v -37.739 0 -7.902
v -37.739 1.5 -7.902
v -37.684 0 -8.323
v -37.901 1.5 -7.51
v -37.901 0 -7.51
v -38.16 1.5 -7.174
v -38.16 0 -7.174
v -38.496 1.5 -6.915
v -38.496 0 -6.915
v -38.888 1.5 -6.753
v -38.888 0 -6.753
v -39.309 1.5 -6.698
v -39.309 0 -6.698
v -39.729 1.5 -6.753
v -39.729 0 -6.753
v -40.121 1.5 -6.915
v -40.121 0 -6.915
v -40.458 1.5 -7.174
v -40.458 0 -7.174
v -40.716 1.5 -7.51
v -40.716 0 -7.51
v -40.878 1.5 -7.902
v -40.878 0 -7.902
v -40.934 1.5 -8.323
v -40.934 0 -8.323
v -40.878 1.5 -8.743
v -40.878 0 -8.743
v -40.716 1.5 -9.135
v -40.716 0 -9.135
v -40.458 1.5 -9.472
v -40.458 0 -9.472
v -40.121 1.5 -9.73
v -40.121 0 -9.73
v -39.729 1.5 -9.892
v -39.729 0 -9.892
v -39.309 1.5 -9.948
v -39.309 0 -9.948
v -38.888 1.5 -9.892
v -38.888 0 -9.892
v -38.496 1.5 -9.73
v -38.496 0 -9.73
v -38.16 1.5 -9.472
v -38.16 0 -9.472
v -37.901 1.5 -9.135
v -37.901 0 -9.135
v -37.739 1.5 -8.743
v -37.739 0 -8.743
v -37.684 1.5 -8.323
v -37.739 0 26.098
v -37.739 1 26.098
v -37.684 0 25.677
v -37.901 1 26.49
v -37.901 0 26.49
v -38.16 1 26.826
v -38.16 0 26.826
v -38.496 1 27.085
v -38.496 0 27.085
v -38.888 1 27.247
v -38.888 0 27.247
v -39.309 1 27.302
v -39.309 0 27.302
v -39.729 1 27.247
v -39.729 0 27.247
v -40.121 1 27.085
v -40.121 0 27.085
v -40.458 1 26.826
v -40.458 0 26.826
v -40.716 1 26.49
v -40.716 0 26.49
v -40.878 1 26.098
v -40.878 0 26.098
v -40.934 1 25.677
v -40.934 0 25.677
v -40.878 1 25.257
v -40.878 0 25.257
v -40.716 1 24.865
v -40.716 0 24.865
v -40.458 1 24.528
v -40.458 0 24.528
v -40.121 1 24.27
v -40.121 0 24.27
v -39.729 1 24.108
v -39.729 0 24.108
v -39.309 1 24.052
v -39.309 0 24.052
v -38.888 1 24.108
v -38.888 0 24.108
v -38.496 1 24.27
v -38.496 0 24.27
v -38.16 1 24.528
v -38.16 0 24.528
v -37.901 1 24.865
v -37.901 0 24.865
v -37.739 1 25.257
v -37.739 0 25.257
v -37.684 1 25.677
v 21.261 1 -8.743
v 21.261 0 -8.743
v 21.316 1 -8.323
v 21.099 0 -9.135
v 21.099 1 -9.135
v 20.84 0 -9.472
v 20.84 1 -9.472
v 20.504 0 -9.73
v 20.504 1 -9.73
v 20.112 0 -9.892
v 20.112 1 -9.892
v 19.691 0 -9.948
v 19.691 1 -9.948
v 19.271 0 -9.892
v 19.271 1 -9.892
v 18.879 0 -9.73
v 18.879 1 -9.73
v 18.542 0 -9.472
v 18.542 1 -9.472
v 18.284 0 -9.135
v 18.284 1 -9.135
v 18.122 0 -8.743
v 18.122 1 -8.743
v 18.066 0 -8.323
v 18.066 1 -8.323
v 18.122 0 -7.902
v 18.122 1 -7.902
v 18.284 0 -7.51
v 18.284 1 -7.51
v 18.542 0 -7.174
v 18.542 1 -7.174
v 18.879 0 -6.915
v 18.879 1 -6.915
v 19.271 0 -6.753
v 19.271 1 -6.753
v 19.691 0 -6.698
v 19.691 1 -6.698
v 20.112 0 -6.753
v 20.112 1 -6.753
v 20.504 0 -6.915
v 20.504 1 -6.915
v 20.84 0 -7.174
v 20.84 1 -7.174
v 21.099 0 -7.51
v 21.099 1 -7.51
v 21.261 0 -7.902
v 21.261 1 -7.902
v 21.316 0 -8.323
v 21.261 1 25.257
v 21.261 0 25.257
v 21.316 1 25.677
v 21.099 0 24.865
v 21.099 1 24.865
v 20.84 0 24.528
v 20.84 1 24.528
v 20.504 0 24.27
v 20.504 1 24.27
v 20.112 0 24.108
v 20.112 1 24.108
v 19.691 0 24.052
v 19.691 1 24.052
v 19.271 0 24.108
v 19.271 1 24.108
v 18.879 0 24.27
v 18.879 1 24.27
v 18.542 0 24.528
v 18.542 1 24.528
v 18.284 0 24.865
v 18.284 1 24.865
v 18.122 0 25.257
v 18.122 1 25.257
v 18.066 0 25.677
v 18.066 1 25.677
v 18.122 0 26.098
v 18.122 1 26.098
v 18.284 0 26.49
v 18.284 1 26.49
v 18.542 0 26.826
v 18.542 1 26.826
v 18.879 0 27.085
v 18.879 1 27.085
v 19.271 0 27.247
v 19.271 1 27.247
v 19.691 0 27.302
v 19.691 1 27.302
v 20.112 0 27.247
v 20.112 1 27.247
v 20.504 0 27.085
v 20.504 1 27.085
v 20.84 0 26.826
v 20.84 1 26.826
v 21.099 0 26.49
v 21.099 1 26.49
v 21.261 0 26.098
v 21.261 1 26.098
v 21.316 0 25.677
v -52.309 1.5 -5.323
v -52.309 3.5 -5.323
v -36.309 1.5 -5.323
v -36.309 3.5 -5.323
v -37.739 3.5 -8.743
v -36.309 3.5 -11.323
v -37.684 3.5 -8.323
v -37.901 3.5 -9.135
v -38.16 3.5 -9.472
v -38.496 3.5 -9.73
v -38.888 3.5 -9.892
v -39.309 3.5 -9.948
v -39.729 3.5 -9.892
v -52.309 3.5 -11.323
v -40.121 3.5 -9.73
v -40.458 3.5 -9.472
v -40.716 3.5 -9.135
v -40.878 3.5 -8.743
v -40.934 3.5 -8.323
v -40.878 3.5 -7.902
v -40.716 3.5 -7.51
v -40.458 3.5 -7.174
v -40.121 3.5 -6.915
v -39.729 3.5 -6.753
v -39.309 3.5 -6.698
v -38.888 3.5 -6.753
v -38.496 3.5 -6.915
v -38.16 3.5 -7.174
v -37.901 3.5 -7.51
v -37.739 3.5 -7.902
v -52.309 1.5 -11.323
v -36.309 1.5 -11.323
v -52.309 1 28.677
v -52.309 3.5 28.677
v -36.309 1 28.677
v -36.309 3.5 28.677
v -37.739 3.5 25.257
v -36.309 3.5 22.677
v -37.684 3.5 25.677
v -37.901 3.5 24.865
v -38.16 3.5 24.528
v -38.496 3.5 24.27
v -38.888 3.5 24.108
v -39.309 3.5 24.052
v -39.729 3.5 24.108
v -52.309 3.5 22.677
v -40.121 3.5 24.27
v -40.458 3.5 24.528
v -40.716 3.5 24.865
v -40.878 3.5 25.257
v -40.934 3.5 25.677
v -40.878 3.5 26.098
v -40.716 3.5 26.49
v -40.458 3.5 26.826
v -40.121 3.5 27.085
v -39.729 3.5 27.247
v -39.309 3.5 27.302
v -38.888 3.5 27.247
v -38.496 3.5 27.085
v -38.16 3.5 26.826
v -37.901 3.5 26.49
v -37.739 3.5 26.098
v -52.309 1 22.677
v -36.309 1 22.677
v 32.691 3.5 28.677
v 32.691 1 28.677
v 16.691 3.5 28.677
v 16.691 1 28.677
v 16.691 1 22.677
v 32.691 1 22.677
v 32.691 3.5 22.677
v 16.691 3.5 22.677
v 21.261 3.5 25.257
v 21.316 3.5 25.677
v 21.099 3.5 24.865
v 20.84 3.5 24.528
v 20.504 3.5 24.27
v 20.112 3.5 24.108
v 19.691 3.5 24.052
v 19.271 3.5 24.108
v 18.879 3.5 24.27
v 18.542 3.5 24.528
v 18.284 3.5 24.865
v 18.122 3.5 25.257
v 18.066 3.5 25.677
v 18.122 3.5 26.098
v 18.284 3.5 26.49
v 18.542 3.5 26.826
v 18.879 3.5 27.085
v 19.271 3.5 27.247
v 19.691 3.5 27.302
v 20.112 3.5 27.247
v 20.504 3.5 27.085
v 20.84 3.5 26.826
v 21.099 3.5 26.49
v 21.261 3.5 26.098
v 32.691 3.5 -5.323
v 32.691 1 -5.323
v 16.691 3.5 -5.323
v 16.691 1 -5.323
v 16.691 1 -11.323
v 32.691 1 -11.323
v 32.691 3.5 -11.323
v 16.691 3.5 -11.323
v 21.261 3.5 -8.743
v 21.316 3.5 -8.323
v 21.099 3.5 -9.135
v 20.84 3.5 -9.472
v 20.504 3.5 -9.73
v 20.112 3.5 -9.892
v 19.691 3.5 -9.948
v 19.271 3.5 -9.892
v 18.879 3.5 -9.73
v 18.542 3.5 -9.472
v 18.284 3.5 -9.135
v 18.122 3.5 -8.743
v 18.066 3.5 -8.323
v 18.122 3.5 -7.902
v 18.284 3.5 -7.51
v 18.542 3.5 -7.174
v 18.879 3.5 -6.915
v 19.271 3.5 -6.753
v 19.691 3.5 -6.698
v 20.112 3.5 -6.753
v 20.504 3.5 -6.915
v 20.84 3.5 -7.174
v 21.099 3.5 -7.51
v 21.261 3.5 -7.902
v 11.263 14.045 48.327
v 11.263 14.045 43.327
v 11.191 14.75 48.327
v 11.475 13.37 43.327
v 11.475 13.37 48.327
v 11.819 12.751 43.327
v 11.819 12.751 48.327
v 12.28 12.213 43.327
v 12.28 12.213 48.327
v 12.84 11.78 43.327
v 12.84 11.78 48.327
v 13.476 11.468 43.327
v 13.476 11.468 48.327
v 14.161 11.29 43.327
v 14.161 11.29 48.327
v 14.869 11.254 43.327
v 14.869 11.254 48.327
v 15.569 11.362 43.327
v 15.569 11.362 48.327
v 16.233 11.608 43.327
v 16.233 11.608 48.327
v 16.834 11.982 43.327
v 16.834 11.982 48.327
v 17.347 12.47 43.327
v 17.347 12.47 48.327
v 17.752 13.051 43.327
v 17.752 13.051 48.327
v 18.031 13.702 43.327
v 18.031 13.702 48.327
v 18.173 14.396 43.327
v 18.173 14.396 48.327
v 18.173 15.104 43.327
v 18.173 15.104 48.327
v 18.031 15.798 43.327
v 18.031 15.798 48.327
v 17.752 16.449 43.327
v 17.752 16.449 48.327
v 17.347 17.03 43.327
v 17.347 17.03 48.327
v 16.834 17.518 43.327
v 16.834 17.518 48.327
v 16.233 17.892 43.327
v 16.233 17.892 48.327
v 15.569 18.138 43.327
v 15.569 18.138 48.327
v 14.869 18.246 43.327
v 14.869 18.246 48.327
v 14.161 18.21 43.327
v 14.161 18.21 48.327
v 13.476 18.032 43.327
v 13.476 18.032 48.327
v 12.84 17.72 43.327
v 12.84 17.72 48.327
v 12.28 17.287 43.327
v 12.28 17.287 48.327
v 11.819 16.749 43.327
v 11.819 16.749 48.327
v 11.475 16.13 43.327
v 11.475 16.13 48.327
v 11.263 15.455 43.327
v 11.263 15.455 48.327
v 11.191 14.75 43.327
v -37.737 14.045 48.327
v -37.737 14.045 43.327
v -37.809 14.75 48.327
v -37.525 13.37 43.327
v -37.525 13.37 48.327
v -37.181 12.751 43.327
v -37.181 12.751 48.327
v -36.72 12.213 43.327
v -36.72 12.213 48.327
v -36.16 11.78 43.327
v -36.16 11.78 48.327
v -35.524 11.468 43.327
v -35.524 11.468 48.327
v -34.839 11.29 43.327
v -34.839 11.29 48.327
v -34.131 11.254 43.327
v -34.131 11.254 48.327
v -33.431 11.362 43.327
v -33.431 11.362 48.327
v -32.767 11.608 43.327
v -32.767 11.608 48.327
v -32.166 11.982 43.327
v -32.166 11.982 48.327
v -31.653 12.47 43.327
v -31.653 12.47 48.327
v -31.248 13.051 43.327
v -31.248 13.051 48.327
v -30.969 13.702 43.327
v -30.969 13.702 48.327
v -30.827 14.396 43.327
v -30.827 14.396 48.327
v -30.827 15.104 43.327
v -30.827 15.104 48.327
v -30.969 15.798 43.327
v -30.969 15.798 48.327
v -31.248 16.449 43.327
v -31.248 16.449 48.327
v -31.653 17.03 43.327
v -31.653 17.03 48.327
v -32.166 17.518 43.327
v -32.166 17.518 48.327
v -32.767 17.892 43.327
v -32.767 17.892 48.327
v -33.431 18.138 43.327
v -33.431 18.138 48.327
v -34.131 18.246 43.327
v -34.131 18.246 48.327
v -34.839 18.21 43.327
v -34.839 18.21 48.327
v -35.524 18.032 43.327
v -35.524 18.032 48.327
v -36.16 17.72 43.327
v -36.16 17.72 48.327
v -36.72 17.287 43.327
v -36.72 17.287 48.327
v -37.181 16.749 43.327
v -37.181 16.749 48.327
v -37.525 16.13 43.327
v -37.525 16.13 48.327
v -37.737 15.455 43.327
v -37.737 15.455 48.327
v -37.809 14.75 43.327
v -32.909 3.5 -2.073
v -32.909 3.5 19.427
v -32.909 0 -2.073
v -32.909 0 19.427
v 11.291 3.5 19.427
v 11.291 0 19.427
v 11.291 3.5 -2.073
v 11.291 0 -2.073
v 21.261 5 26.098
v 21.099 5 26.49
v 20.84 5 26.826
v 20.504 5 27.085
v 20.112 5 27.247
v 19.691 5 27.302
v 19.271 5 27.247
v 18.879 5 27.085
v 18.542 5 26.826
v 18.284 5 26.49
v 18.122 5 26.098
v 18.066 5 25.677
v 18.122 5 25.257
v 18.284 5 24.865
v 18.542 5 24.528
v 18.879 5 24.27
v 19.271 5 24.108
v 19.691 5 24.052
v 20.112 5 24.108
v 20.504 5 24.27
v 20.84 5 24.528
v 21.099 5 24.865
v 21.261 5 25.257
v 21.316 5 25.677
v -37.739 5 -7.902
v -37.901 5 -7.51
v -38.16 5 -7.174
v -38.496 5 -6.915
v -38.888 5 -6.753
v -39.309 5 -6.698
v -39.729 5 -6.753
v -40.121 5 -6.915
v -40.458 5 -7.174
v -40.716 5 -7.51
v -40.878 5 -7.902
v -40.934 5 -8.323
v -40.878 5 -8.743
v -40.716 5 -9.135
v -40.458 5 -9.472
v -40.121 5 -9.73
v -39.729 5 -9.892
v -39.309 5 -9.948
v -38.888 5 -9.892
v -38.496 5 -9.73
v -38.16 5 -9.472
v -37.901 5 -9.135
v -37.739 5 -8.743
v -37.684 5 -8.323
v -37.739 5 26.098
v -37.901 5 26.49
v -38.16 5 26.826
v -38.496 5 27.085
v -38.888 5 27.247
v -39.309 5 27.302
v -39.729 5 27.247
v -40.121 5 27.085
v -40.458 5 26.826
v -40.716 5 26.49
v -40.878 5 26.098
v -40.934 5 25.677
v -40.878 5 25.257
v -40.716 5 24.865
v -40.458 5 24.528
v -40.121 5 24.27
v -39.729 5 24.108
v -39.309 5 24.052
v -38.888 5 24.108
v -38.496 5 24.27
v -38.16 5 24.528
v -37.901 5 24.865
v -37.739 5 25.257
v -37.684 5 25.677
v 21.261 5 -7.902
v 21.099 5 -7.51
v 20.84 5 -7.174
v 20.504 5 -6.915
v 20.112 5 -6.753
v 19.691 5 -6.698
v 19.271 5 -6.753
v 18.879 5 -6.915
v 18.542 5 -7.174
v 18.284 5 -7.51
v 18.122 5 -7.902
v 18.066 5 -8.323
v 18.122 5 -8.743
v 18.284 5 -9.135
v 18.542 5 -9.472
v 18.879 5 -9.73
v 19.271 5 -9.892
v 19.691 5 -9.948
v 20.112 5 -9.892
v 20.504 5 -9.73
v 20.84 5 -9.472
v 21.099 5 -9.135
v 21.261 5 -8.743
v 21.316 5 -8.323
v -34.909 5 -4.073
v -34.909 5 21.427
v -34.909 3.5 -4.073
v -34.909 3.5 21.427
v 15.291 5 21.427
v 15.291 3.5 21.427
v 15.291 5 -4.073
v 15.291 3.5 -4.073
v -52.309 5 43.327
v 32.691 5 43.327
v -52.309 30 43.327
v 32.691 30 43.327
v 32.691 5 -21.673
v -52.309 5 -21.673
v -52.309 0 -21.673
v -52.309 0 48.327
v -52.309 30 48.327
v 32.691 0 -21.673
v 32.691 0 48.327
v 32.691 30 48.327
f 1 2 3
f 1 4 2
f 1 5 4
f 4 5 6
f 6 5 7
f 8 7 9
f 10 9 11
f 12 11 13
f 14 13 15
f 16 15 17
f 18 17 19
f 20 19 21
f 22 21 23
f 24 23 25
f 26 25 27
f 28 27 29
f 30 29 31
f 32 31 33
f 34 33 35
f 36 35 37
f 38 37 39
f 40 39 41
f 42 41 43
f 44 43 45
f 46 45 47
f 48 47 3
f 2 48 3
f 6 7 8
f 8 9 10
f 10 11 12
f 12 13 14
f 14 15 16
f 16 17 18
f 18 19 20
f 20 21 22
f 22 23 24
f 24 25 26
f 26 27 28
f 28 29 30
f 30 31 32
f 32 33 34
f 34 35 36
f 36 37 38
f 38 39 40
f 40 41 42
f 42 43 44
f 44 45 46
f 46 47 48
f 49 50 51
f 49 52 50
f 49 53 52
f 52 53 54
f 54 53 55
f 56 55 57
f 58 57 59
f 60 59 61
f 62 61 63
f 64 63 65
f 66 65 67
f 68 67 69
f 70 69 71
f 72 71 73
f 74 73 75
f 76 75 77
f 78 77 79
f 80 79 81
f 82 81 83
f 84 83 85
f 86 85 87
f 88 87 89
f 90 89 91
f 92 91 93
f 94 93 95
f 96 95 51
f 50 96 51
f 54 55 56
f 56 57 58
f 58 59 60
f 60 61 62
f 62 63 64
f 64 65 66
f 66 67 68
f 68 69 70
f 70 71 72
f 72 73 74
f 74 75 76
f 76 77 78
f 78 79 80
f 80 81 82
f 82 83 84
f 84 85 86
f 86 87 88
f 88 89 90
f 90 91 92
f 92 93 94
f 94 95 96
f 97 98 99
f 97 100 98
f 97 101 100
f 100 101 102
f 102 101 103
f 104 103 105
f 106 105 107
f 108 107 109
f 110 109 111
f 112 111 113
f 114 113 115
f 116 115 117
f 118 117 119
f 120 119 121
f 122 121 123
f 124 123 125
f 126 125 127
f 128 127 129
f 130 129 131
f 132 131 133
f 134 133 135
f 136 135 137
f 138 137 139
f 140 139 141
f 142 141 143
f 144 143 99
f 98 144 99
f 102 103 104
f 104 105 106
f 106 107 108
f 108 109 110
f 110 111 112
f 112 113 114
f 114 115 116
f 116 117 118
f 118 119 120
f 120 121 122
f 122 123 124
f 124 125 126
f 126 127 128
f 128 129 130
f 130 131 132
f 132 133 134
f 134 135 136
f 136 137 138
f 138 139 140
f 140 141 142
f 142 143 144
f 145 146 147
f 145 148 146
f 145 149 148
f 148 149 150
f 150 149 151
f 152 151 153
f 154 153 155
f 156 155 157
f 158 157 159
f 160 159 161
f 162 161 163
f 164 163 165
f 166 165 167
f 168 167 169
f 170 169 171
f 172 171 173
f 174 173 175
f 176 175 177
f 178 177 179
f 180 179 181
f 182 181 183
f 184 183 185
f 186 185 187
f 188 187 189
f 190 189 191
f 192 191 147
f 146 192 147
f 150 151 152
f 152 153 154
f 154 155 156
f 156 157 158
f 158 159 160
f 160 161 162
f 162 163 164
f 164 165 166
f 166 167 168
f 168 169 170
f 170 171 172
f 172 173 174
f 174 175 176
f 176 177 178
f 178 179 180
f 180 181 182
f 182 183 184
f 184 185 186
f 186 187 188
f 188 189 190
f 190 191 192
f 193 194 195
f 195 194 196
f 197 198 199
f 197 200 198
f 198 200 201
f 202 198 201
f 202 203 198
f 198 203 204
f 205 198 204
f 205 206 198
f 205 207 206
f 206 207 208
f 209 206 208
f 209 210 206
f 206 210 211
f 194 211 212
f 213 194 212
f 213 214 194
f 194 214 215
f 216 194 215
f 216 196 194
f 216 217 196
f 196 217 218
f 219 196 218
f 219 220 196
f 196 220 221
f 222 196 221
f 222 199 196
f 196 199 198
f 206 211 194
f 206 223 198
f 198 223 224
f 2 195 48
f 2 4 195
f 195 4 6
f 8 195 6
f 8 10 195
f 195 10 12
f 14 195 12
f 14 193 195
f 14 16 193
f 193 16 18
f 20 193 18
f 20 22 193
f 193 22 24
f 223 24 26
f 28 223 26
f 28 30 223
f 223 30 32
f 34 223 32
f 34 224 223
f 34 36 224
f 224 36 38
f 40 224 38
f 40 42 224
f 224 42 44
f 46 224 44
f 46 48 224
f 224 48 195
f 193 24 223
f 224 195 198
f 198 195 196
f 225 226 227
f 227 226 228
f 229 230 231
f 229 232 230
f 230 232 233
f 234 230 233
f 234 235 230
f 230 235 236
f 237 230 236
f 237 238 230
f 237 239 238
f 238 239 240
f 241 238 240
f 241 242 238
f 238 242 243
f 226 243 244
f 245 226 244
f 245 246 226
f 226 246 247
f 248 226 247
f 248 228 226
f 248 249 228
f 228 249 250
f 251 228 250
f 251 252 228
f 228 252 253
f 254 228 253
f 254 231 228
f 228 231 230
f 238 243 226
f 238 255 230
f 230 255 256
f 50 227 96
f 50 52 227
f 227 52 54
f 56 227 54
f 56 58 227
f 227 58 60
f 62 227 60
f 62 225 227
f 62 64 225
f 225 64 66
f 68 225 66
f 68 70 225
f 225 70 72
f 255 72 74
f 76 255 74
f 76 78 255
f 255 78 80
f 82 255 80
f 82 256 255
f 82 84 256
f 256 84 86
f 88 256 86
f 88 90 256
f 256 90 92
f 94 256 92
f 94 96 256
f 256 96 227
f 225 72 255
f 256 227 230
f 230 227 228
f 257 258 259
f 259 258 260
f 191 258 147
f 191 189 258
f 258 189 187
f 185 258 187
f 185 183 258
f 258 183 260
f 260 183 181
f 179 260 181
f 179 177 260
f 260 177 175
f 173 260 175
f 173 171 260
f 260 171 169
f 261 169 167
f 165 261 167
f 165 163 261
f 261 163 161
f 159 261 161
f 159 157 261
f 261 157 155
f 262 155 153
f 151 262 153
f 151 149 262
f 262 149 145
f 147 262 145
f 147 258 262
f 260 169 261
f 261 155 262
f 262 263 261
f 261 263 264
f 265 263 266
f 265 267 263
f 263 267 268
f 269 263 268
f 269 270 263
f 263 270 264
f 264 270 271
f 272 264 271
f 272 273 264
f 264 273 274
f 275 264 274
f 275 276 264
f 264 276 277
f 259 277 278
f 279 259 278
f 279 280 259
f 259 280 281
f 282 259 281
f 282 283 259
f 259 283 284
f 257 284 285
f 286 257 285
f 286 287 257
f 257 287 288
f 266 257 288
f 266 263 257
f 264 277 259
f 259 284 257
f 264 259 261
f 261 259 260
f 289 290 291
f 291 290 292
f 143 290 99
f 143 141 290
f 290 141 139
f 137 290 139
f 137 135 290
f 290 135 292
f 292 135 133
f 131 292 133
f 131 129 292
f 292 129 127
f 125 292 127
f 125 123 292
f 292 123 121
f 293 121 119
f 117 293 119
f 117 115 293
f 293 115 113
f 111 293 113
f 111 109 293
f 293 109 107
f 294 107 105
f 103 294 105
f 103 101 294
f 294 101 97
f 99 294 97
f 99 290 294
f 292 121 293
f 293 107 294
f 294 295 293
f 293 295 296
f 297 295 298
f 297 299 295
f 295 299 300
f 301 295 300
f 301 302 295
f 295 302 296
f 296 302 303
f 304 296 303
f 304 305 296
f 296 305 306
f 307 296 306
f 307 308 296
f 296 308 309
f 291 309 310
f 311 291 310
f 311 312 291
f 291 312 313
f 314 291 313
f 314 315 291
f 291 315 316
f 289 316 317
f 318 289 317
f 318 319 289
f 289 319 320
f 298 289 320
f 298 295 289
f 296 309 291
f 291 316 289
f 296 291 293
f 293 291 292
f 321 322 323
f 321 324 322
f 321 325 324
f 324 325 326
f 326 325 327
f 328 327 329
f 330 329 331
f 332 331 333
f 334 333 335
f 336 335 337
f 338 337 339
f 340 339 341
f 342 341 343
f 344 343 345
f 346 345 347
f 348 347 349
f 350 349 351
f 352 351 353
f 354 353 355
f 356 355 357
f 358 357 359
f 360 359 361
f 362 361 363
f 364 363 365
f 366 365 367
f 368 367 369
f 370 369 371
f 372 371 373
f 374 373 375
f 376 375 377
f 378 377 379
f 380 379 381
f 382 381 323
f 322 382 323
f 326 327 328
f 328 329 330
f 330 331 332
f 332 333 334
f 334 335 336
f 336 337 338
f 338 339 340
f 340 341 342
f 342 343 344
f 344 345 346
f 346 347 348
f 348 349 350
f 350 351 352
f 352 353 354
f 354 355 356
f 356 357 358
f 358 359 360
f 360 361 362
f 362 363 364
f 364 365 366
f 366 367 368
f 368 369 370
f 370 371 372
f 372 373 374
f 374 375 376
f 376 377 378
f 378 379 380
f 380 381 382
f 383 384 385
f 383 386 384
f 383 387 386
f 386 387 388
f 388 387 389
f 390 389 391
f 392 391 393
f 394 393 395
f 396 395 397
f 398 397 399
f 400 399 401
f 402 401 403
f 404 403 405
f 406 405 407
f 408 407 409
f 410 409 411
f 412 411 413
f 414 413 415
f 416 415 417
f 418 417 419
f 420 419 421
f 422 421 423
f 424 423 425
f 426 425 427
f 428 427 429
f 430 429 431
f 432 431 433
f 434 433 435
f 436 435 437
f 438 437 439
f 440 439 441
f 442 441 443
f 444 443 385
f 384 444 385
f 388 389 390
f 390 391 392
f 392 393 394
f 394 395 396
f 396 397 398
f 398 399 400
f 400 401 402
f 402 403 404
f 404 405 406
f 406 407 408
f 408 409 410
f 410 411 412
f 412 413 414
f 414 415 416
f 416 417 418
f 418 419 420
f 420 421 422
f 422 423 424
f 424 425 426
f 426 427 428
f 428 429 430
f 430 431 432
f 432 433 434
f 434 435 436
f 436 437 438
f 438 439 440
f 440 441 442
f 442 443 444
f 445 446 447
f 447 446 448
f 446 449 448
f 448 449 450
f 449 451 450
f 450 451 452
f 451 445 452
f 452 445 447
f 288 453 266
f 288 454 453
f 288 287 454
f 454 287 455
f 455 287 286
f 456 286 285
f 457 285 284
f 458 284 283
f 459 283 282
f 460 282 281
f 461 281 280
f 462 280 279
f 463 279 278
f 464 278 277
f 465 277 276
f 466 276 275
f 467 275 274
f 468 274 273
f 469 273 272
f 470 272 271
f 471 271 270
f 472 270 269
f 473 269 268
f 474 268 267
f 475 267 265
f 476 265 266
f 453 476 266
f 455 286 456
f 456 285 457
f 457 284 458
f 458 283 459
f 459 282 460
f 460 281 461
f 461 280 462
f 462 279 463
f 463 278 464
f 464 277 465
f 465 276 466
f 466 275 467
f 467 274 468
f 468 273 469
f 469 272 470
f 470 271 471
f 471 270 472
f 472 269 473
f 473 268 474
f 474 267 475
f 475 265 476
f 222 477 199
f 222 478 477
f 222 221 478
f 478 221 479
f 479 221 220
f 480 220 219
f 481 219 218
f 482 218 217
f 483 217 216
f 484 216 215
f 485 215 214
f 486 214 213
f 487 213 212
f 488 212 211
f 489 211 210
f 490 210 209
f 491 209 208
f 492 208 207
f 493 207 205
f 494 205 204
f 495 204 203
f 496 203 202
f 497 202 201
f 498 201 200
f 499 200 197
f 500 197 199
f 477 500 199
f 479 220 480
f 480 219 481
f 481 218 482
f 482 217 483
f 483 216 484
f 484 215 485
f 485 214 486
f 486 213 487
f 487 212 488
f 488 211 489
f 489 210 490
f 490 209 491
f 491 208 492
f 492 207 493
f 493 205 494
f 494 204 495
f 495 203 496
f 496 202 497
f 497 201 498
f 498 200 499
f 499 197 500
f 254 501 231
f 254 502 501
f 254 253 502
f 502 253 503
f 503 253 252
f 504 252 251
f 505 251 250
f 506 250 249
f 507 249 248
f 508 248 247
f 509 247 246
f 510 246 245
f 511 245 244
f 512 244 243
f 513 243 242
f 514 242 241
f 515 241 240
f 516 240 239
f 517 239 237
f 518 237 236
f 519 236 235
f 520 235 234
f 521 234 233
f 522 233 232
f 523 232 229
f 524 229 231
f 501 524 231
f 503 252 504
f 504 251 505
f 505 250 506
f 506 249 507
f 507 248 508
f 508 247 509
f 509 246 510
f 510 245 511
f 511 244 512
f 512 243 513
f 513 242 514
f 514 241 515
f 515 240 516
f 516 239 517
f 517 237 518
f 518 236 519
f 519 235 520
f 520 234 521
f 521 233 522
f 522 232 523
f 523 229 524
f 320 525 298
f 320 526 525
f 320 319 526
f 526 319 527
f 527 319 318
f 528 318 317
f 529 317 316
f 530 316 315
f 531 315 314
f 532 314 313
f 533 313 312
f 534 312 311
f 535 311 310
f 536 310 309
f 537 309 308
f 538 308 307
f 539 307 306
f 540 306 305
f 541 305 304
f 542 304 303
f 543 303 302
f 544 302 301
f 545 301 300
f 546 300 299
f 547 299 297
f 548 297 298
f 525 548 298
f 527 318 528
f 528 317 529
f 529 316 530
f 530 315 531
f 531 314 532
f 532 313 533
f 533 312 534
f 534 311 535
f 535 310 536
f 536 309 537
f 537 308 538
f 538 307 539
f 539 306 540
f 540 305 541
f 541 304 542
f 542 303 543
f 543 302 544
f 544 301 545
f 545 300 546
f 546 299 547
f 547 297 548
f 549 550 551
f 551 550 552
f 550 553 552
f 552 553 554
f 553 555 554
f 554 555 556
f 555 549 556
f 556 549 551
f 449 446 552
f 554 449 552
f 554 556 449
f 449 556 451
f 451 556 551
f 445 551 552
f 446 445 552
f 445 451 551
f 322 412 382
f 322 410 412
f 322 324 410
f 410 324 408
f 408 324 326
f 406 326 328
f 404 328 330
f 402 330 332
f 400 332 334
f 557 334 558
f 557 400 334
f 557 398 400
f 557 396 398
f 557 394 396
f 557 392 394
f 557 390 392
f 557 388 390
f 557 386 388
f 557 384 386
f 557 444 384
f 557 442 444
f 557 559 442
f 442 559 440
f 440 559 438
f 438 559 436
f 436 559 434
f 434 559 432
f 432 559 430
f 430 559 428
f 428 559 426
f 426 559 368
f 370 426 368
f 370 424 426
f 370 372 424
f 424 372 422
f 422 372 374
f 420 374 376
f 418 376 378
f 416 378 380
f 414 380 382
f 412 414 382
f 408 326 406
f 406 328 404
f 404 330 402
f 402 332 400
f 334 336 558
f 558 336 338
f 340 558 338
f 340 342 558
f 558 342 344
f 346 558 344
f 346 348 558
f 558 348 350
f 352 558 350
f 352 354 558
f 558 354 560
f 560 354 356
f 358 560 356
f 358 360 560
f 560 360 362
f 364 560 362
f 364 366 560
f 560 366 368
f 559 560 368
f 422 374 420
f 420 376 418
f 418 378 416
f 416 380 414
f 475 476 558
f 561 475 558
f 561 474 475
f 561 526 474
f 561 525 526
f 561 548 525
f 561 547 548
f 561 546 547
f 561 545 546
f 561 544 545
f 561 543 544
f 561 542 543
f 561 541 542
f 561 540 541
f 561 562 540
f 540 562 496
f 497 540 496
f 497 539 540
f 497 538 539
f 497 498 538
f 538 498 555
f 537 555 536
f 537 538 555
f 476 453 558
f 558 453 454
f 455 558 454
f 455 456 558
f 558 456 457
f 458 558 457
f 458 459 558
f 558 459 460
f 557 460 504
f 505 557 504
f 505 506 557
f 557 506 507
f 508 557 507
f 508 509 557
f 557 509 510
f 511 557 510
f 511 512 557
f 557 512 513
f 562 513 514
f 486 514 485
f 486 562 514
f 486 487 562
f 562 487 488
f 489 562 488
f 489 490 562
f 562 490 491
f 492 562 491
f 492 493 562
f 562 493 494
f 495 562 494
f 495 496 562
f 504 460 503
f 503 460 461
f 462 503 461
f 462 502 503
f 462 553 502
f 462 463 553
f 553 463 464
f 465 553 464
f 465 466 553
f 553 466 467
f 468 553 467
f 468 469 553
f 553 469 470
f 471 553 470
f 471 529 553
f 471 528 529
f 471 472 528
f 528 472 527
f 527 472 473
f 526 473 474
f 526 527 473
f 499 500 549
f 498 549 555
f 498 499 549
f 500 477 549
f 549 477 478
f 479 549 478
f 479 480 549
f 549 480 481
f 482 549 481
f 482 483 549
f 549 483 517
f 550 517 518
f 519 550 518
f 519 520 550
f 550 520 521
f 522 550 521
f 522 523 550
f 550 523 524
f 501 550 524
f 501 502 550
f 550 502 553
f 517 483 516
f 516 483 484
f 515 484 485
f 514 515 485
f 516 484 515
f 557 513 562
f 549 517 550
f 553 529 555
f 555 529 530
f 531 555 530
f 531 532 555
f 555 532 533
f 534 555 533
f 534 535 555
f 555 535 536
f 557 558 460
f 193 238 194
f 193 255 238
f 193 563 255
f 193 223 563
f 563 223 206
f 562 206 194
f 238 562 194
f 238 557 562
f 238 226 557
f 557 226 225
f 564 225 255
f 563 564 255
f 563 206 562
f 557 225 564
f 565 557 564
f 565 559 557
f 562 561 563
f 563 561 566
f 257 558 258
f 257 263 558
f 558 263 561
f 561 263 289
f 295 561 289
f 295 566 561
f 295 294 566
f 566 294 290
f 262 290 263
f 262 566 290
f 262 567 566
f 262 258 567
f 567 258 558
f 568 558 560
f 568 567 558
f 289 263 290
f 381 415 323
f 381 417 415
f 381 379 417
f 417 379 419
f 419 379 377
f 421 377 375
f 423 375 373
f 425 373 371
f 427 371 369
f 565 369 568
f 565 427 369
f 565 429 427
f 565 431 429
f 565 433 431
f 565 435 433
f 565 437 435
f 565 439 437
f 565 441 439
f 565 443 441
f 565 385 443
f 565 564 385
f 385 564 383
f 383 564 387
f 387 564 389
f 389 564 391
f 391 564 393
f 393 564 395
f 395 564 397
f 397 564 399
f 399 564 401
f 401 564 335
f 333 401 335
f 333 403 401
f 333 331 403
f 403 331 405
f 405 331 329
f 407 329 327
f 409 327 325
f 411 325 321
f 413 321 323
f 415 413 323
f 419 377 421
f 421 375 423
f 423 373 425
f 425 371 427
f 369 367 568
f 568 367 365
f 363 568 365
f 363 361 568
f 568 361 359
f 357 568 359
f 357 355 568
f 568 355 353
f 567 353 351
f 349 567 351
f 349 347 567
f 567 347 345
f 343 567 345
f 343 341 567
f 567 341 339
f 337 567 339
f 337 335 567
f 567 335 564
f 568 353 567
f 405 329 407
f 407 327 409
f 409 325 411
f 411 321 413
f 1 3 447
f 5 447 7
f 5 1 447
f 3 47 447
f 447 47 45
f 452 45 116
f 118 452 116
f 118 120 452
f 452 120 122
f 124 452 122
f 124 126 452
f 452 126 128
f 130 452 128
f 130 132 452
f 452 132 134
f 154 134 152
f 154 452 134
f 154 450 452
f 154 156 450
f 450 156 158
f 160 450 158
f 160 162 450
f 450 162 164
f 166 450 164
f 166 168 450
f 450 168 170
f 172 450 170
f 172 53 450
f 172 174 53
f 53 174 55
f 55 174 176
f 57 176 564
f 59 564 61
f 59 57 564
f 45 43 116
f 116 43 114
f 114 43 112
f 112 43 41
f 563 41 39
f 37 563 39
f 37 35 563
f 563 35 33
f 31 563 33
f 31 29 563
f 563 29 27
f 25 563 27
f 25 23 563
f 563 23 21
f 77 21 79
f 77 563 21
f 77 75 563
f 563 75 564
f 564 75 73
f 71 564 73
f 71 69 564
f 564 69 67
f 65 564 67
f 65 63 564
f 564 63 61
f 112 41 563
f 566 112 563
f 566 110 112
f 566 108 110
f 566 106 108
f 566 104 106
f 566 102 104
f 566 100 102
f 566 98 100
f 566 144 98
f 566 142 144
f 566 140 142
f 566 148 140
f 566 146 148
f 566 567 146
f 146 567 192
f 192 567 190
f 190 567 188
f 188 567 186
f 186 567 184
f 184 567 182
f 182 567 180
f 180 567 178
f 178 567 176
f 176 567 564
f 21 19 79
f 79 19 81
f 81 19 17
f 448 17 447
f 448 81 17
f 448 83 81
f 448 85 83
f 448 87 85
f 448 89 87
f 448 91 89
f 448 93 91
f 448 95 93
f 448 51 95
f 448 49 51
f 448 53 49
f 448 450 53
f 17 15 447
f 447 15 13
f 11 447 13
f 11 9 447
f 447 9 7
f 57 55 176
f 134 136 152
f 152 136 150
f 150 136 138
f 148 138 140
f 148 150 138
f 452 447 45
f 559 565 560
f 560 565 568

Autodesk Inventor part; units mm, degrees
ref_plane "YZ Plane" through (0, 0, 0) normal (1, 0, 0) x (0, 1, 0)
ref_plane "XZ Plane" through (0, 0, 0) normal (0, 1, 0) x (-1, 0, 0)
ref_plane "XY Plane" through (0, 0, 0) normal (0, 0, 1) x (1, 0, 0)
sketch "Sketch1" plane through (0, 0, 0) normal (0, 1, 0) x (-1, 0, 0)
  line L0 (52.3087, -21.6726) -> (-32.6913, -21.6726)
  line L1 (-32.6913, -21.6726) -> (-32.6913, 48.3274)
  line L2 (-32.6913, 48.3274) -> (52.3087, 48.3274)
  line L3 (52.3087, 48.3274) -> (52.3087, -21.6726)
  dimension "d4" = 70
  dimension "d5" = 85
extrude "Extrusion1" add sketch "Sketch1" along normal blind 30
sketch "Sketch2" plane through (0, 30, 0) normal (0, 1, 0) x (1, 0, 0)
  line L0 (32.6913, 21.6726) -> (-52.3087, 21.6726) projected
  line L1 (-52.3087, 21.6726) -> (-52.3087, -48.3274) projected
  line L2 (-52.3087, -48.3274) -> (32.6913, -48.3274) projected
  line L3 (32.6913, -48.3274) -> (32.6913, 21.6726) projected
  line L4 (-52.3087, 21.6726) -> (32.6913, 21.6726)
  line L5 (32.6913, 21.6726) -> (32.6913, -43.3274)
  line L6 (32.6913, -43.3274) -> (-52.3087, -43.3274)
  line L7 (-52.3087, -43.3274) -> (-52.3087, 21.6726)
  point P0 (0, 0)
  dimension "d8" = 0
  dimension "d9" = 0
  dimension "d10" = 5
extrude "Extrusion2" cut sketch "Sketch2" against normal blind 25 contours L3 L6 L1 L0
sketch "Sketch3" plane through (0, 5, 0) normal (0, 1, 0) x (1, 0, 0)
  line L0 (-52.3087, -43.3274) -> (-52.3087, 21.6726) projected
  line L1 (32.6913, -43.3274) -> (-52.3087, -43.3274) projected
  line L2 (32.6913, 21.6726) -> (32.6913, -43.3274) projected
  line L3 (-34.9087, 4.0726) -> (15.2913, 4.0726)
  line L4 (15.2913, 4.0726) -> (15.2913, -21.4274)
  line L5 (15.2913, -21.4274) -> (-34.9087, -21.4274)
  line L6 (-34.9087, -21.4274) -> (-34.9087, 4.0726)
  line L7 (-52.3087, 21.6726) -> (32.6913, 21.6726)
  line L8 (-52.3087, -48.3274) -> (-52.3087, 21.6726) projected
  line L9 (-9.8087, -43.3274) -> (-9.8087, 21.6726) construction
  circle A0 centre (-39.3087, -25.6774) radius 1.625
  circle A1 centre (-39.3087, 8.3226) radius 1.625
  circle A2 centre (19.6913, 8.3226) radius 1.625
  circle A3 centre (19.6913, -25.6774) radius 1.625
  line L10 (-34.9087, -8.6774) -> (15.2913, -8.6774) construction
  point P0 (0, 0)
  dimension "d14" = 17.4
  dimension "d15" = 17.4
  dimension "d17" = 21.9
  dimension "d106" = 25.5
  dimension "d107" = 3.25
  dimension "d110" = 34
  dimension "d111" = 59
extrude "Extrusion3" cut sketch "Sketch3" against normal blind 1.5 contours L3 L4 L5 L6 | A0 | A1 | A2 | A3
sketch "Sketch4" plane through (0, 3.5, 0) normal (0, 1, 0) x (1, 0, 0)
  line L0 (-34.9087, 4.0726) -> (15.2913, 4.0726) projected
  line L1 (-34.9087, -21.4274) -> (-34.9087, 4.0726) projected
  line L2 (15.2913, -21.4274) -> (-34.9087, -21.4274) projected
  line L3 (15.2913, 4.0726) -> (15.2913, -21.4274) projected
  line L4 (-32.9087, 2.0726) -> (11.2913, 2.0726)
  line L5 (11.2913, 2.0726) -> (11.2913, -19.4274)
  line L6 (11.2913, -19.4274) -> (-32.9087, -19.4274)
  line L7 (-32.9087, -19.4274) -> (-32.9087, 2.0726)
  point P0 (0, 0)
  dimension "d20" = 2
  dimension "d21" = 2
  dimension "d22" = 2
  dimension "d23" = 4
extrude "Extrusion4" cut sketch "Sketch4" against normal blind 1 contours L4 L5 L6 L7
sketch "Sketch10" plane through (32.6913, 5, 43.3274) normal (0, 0, -1) x (-1, 0, 0)
  line L0 (85, 25) -> (85, 0) projected
  line L1 (0, 25) -> (85, 25) projected
  circle A0 centre (18, 9.75) radius 3.5
  circle A1 centre (67, 9.75) radius 3.5
  point P0 (32.6913, -5)
  dimension "d53" = 15.25
  dimension "d55" = 15.25
  dimension "d58" = 7
  dimension "d59" = 7
  dimension "d70" = 49
  dimension "d71" = 18
extrude "Extrusion9" cut sketch "Sketch10" against normal blind 5
sketch "Sketch16" plane through (15.2913, 5, -4.0726) normal (-1, 0, 0) x (0, 0, 1)
  line L0 (0, 0) -> (25.5, 0) projected
  line L1 (0, 0) -> (0, -1.5) projected
  line L2 (0, -1.5) -> (25.5, -1.5) projected
  line L3 (25.5, 0) -> (25.5, -1.5) projected
  point P0 (4.0726, -5)
sketch "Sketch17" plane through (0, 2.5, 0) normal (0, 1, 0) x (1, 0, 0)
  line L0 (-32.9087, 2.0726) -> (11.2913, 2.0726) projected
  line L1 (-32.9087, -19.4274) -> (-32.9087, 2.0726) projected
  line L2 (11.2913, -19.4274) -> (-32.9087, -19.4274) projected
  line L3 (11.2913, 2.0726) -> (11.2913, -19.4274) projected
  line L4 (-32.9087, 2.0726) -> (11.2913, 2.0726)
  line L5 (11.2913, 2.0726) -> (11.2913, -19.4274)
  line L6 (11.2913, -19.4274) -> (-32.9087, -19.4274)
  line L7 (-32.9087, -19.4274) -> (-32.9087, 2.0726)
  point P0 (0, 0)
  dimension "d93" = 0
  dimension "d94" = 0
  dimension "d95" = 0
  dimension "d96" = 0
extrude "Extrusion14" cut sketch "Sketch17" along normal through all both and the other way through all
sketch "Sketch20" plane through (32.6913, 0, 48.3274) normal (1, 0, 0) x (0, 0, -1)
  line L0 (19.65, 3.5) -> (25.65, 3.5)
  line L1 (25.65, 3.5) -> (25.65, 1)
  line L2 (25.65, 1) -> (19.65, 1)
  line L3 (19.65, 1) -> (19.65, 3.5)
  line L4 (21.025, 3.5) -> (24.275, 3.5) construction
  line L5 (55.025, 3.5) -> (58.275, 3.5) construction
  line L6 (53.65, 3.5) -> (59.65, 3.5)
  line L7 (59.65, 3.5) -> (59.65, 1)
  line L8 (59.65, 1) -> (53.65, 1)
  line L9 (53.65, 1) -> (53.65, 3.5)
  point P0 (48.3274, 0)
  dimension "d113" = 2.5
  dimension "d125" = 6
  dimension "d139" = 1.375
  dimension "d140" = 1.375
extrude "Extrusion16" cut sketch "Sketch20" against normal blind 16
sketch "Sketch21" plane through (-52.3087, 0, -21.6726) normal (-1, 0, 0) x (0, 0, 1)
  line L0 (17.6, 3.5) -> (43.1, 3.5) projected
  line L1 (10.35, 1.5) -> (16.35, 1.5)
  line L2 (16.35, 1.5) -> (16.35, 3.5)
  line L3 (16.35, 3.5) -> (10.35, 3.5)
  line L4 (10.35, 3.5) -> (10.35, 1.5)
  line L5 (44.35, 1) -> (50.35, 1)
  line L6 (50.35, 1) -> (50.35, 3.5)
  line L7 (50.35, 3.5) -> (44.35, 3.5)
  line L8 (44.35, 3.5) -> (44.35, 1)
  line L9 (10.35, 3.5) -> (10.35, 1.5) projected
  line L10 (10.35, 1.5) -> (16.35, 1.5) projected
  line L11 (16.35, 1.5) -> (16.35, 3.5) projected
  line L12 (50.35, 1) -> (50.35, 3.5) projected
  line L13 (44.35, 1) -> (50.35, 1) projected
  line L14 (44.35, 3.5) -> (44.35, 1) projected
  point P0 (21.6726, 0)
extrude "Extrusion17" cut sketch "Sketch21" against normal blind 16
sketch "Sketch22" plane through (0, 5, 0) normal (0, 1, 0) x (1, 0, 0)
  circle A0 centre (-39.3087, -25.6774) radius 1.625
  circle A1 centre (19.6913, 8.3226) radius 1.625 projected
  circle A2 centre (-39.3087, 8.3226) radius 1.625
  circle A3 centre (19.6913, -25.6774) radius 1.625
  circle A4 centre (19.6913, 8.3226) radius 1.625
  circle A5 centre (19.6913, -25.6774) radius 1.625 projected
  circle A6 centre (-39.3087, 8.3226) radius 1.625 projected
  circle A7 centre (-39.3087, -25.6774) radius 1.625 projected
  point P0 (0, 0)
extrude "Extrusion18" cut sketch "Sketch22" against normal through all
properties part number "SampleBase"
